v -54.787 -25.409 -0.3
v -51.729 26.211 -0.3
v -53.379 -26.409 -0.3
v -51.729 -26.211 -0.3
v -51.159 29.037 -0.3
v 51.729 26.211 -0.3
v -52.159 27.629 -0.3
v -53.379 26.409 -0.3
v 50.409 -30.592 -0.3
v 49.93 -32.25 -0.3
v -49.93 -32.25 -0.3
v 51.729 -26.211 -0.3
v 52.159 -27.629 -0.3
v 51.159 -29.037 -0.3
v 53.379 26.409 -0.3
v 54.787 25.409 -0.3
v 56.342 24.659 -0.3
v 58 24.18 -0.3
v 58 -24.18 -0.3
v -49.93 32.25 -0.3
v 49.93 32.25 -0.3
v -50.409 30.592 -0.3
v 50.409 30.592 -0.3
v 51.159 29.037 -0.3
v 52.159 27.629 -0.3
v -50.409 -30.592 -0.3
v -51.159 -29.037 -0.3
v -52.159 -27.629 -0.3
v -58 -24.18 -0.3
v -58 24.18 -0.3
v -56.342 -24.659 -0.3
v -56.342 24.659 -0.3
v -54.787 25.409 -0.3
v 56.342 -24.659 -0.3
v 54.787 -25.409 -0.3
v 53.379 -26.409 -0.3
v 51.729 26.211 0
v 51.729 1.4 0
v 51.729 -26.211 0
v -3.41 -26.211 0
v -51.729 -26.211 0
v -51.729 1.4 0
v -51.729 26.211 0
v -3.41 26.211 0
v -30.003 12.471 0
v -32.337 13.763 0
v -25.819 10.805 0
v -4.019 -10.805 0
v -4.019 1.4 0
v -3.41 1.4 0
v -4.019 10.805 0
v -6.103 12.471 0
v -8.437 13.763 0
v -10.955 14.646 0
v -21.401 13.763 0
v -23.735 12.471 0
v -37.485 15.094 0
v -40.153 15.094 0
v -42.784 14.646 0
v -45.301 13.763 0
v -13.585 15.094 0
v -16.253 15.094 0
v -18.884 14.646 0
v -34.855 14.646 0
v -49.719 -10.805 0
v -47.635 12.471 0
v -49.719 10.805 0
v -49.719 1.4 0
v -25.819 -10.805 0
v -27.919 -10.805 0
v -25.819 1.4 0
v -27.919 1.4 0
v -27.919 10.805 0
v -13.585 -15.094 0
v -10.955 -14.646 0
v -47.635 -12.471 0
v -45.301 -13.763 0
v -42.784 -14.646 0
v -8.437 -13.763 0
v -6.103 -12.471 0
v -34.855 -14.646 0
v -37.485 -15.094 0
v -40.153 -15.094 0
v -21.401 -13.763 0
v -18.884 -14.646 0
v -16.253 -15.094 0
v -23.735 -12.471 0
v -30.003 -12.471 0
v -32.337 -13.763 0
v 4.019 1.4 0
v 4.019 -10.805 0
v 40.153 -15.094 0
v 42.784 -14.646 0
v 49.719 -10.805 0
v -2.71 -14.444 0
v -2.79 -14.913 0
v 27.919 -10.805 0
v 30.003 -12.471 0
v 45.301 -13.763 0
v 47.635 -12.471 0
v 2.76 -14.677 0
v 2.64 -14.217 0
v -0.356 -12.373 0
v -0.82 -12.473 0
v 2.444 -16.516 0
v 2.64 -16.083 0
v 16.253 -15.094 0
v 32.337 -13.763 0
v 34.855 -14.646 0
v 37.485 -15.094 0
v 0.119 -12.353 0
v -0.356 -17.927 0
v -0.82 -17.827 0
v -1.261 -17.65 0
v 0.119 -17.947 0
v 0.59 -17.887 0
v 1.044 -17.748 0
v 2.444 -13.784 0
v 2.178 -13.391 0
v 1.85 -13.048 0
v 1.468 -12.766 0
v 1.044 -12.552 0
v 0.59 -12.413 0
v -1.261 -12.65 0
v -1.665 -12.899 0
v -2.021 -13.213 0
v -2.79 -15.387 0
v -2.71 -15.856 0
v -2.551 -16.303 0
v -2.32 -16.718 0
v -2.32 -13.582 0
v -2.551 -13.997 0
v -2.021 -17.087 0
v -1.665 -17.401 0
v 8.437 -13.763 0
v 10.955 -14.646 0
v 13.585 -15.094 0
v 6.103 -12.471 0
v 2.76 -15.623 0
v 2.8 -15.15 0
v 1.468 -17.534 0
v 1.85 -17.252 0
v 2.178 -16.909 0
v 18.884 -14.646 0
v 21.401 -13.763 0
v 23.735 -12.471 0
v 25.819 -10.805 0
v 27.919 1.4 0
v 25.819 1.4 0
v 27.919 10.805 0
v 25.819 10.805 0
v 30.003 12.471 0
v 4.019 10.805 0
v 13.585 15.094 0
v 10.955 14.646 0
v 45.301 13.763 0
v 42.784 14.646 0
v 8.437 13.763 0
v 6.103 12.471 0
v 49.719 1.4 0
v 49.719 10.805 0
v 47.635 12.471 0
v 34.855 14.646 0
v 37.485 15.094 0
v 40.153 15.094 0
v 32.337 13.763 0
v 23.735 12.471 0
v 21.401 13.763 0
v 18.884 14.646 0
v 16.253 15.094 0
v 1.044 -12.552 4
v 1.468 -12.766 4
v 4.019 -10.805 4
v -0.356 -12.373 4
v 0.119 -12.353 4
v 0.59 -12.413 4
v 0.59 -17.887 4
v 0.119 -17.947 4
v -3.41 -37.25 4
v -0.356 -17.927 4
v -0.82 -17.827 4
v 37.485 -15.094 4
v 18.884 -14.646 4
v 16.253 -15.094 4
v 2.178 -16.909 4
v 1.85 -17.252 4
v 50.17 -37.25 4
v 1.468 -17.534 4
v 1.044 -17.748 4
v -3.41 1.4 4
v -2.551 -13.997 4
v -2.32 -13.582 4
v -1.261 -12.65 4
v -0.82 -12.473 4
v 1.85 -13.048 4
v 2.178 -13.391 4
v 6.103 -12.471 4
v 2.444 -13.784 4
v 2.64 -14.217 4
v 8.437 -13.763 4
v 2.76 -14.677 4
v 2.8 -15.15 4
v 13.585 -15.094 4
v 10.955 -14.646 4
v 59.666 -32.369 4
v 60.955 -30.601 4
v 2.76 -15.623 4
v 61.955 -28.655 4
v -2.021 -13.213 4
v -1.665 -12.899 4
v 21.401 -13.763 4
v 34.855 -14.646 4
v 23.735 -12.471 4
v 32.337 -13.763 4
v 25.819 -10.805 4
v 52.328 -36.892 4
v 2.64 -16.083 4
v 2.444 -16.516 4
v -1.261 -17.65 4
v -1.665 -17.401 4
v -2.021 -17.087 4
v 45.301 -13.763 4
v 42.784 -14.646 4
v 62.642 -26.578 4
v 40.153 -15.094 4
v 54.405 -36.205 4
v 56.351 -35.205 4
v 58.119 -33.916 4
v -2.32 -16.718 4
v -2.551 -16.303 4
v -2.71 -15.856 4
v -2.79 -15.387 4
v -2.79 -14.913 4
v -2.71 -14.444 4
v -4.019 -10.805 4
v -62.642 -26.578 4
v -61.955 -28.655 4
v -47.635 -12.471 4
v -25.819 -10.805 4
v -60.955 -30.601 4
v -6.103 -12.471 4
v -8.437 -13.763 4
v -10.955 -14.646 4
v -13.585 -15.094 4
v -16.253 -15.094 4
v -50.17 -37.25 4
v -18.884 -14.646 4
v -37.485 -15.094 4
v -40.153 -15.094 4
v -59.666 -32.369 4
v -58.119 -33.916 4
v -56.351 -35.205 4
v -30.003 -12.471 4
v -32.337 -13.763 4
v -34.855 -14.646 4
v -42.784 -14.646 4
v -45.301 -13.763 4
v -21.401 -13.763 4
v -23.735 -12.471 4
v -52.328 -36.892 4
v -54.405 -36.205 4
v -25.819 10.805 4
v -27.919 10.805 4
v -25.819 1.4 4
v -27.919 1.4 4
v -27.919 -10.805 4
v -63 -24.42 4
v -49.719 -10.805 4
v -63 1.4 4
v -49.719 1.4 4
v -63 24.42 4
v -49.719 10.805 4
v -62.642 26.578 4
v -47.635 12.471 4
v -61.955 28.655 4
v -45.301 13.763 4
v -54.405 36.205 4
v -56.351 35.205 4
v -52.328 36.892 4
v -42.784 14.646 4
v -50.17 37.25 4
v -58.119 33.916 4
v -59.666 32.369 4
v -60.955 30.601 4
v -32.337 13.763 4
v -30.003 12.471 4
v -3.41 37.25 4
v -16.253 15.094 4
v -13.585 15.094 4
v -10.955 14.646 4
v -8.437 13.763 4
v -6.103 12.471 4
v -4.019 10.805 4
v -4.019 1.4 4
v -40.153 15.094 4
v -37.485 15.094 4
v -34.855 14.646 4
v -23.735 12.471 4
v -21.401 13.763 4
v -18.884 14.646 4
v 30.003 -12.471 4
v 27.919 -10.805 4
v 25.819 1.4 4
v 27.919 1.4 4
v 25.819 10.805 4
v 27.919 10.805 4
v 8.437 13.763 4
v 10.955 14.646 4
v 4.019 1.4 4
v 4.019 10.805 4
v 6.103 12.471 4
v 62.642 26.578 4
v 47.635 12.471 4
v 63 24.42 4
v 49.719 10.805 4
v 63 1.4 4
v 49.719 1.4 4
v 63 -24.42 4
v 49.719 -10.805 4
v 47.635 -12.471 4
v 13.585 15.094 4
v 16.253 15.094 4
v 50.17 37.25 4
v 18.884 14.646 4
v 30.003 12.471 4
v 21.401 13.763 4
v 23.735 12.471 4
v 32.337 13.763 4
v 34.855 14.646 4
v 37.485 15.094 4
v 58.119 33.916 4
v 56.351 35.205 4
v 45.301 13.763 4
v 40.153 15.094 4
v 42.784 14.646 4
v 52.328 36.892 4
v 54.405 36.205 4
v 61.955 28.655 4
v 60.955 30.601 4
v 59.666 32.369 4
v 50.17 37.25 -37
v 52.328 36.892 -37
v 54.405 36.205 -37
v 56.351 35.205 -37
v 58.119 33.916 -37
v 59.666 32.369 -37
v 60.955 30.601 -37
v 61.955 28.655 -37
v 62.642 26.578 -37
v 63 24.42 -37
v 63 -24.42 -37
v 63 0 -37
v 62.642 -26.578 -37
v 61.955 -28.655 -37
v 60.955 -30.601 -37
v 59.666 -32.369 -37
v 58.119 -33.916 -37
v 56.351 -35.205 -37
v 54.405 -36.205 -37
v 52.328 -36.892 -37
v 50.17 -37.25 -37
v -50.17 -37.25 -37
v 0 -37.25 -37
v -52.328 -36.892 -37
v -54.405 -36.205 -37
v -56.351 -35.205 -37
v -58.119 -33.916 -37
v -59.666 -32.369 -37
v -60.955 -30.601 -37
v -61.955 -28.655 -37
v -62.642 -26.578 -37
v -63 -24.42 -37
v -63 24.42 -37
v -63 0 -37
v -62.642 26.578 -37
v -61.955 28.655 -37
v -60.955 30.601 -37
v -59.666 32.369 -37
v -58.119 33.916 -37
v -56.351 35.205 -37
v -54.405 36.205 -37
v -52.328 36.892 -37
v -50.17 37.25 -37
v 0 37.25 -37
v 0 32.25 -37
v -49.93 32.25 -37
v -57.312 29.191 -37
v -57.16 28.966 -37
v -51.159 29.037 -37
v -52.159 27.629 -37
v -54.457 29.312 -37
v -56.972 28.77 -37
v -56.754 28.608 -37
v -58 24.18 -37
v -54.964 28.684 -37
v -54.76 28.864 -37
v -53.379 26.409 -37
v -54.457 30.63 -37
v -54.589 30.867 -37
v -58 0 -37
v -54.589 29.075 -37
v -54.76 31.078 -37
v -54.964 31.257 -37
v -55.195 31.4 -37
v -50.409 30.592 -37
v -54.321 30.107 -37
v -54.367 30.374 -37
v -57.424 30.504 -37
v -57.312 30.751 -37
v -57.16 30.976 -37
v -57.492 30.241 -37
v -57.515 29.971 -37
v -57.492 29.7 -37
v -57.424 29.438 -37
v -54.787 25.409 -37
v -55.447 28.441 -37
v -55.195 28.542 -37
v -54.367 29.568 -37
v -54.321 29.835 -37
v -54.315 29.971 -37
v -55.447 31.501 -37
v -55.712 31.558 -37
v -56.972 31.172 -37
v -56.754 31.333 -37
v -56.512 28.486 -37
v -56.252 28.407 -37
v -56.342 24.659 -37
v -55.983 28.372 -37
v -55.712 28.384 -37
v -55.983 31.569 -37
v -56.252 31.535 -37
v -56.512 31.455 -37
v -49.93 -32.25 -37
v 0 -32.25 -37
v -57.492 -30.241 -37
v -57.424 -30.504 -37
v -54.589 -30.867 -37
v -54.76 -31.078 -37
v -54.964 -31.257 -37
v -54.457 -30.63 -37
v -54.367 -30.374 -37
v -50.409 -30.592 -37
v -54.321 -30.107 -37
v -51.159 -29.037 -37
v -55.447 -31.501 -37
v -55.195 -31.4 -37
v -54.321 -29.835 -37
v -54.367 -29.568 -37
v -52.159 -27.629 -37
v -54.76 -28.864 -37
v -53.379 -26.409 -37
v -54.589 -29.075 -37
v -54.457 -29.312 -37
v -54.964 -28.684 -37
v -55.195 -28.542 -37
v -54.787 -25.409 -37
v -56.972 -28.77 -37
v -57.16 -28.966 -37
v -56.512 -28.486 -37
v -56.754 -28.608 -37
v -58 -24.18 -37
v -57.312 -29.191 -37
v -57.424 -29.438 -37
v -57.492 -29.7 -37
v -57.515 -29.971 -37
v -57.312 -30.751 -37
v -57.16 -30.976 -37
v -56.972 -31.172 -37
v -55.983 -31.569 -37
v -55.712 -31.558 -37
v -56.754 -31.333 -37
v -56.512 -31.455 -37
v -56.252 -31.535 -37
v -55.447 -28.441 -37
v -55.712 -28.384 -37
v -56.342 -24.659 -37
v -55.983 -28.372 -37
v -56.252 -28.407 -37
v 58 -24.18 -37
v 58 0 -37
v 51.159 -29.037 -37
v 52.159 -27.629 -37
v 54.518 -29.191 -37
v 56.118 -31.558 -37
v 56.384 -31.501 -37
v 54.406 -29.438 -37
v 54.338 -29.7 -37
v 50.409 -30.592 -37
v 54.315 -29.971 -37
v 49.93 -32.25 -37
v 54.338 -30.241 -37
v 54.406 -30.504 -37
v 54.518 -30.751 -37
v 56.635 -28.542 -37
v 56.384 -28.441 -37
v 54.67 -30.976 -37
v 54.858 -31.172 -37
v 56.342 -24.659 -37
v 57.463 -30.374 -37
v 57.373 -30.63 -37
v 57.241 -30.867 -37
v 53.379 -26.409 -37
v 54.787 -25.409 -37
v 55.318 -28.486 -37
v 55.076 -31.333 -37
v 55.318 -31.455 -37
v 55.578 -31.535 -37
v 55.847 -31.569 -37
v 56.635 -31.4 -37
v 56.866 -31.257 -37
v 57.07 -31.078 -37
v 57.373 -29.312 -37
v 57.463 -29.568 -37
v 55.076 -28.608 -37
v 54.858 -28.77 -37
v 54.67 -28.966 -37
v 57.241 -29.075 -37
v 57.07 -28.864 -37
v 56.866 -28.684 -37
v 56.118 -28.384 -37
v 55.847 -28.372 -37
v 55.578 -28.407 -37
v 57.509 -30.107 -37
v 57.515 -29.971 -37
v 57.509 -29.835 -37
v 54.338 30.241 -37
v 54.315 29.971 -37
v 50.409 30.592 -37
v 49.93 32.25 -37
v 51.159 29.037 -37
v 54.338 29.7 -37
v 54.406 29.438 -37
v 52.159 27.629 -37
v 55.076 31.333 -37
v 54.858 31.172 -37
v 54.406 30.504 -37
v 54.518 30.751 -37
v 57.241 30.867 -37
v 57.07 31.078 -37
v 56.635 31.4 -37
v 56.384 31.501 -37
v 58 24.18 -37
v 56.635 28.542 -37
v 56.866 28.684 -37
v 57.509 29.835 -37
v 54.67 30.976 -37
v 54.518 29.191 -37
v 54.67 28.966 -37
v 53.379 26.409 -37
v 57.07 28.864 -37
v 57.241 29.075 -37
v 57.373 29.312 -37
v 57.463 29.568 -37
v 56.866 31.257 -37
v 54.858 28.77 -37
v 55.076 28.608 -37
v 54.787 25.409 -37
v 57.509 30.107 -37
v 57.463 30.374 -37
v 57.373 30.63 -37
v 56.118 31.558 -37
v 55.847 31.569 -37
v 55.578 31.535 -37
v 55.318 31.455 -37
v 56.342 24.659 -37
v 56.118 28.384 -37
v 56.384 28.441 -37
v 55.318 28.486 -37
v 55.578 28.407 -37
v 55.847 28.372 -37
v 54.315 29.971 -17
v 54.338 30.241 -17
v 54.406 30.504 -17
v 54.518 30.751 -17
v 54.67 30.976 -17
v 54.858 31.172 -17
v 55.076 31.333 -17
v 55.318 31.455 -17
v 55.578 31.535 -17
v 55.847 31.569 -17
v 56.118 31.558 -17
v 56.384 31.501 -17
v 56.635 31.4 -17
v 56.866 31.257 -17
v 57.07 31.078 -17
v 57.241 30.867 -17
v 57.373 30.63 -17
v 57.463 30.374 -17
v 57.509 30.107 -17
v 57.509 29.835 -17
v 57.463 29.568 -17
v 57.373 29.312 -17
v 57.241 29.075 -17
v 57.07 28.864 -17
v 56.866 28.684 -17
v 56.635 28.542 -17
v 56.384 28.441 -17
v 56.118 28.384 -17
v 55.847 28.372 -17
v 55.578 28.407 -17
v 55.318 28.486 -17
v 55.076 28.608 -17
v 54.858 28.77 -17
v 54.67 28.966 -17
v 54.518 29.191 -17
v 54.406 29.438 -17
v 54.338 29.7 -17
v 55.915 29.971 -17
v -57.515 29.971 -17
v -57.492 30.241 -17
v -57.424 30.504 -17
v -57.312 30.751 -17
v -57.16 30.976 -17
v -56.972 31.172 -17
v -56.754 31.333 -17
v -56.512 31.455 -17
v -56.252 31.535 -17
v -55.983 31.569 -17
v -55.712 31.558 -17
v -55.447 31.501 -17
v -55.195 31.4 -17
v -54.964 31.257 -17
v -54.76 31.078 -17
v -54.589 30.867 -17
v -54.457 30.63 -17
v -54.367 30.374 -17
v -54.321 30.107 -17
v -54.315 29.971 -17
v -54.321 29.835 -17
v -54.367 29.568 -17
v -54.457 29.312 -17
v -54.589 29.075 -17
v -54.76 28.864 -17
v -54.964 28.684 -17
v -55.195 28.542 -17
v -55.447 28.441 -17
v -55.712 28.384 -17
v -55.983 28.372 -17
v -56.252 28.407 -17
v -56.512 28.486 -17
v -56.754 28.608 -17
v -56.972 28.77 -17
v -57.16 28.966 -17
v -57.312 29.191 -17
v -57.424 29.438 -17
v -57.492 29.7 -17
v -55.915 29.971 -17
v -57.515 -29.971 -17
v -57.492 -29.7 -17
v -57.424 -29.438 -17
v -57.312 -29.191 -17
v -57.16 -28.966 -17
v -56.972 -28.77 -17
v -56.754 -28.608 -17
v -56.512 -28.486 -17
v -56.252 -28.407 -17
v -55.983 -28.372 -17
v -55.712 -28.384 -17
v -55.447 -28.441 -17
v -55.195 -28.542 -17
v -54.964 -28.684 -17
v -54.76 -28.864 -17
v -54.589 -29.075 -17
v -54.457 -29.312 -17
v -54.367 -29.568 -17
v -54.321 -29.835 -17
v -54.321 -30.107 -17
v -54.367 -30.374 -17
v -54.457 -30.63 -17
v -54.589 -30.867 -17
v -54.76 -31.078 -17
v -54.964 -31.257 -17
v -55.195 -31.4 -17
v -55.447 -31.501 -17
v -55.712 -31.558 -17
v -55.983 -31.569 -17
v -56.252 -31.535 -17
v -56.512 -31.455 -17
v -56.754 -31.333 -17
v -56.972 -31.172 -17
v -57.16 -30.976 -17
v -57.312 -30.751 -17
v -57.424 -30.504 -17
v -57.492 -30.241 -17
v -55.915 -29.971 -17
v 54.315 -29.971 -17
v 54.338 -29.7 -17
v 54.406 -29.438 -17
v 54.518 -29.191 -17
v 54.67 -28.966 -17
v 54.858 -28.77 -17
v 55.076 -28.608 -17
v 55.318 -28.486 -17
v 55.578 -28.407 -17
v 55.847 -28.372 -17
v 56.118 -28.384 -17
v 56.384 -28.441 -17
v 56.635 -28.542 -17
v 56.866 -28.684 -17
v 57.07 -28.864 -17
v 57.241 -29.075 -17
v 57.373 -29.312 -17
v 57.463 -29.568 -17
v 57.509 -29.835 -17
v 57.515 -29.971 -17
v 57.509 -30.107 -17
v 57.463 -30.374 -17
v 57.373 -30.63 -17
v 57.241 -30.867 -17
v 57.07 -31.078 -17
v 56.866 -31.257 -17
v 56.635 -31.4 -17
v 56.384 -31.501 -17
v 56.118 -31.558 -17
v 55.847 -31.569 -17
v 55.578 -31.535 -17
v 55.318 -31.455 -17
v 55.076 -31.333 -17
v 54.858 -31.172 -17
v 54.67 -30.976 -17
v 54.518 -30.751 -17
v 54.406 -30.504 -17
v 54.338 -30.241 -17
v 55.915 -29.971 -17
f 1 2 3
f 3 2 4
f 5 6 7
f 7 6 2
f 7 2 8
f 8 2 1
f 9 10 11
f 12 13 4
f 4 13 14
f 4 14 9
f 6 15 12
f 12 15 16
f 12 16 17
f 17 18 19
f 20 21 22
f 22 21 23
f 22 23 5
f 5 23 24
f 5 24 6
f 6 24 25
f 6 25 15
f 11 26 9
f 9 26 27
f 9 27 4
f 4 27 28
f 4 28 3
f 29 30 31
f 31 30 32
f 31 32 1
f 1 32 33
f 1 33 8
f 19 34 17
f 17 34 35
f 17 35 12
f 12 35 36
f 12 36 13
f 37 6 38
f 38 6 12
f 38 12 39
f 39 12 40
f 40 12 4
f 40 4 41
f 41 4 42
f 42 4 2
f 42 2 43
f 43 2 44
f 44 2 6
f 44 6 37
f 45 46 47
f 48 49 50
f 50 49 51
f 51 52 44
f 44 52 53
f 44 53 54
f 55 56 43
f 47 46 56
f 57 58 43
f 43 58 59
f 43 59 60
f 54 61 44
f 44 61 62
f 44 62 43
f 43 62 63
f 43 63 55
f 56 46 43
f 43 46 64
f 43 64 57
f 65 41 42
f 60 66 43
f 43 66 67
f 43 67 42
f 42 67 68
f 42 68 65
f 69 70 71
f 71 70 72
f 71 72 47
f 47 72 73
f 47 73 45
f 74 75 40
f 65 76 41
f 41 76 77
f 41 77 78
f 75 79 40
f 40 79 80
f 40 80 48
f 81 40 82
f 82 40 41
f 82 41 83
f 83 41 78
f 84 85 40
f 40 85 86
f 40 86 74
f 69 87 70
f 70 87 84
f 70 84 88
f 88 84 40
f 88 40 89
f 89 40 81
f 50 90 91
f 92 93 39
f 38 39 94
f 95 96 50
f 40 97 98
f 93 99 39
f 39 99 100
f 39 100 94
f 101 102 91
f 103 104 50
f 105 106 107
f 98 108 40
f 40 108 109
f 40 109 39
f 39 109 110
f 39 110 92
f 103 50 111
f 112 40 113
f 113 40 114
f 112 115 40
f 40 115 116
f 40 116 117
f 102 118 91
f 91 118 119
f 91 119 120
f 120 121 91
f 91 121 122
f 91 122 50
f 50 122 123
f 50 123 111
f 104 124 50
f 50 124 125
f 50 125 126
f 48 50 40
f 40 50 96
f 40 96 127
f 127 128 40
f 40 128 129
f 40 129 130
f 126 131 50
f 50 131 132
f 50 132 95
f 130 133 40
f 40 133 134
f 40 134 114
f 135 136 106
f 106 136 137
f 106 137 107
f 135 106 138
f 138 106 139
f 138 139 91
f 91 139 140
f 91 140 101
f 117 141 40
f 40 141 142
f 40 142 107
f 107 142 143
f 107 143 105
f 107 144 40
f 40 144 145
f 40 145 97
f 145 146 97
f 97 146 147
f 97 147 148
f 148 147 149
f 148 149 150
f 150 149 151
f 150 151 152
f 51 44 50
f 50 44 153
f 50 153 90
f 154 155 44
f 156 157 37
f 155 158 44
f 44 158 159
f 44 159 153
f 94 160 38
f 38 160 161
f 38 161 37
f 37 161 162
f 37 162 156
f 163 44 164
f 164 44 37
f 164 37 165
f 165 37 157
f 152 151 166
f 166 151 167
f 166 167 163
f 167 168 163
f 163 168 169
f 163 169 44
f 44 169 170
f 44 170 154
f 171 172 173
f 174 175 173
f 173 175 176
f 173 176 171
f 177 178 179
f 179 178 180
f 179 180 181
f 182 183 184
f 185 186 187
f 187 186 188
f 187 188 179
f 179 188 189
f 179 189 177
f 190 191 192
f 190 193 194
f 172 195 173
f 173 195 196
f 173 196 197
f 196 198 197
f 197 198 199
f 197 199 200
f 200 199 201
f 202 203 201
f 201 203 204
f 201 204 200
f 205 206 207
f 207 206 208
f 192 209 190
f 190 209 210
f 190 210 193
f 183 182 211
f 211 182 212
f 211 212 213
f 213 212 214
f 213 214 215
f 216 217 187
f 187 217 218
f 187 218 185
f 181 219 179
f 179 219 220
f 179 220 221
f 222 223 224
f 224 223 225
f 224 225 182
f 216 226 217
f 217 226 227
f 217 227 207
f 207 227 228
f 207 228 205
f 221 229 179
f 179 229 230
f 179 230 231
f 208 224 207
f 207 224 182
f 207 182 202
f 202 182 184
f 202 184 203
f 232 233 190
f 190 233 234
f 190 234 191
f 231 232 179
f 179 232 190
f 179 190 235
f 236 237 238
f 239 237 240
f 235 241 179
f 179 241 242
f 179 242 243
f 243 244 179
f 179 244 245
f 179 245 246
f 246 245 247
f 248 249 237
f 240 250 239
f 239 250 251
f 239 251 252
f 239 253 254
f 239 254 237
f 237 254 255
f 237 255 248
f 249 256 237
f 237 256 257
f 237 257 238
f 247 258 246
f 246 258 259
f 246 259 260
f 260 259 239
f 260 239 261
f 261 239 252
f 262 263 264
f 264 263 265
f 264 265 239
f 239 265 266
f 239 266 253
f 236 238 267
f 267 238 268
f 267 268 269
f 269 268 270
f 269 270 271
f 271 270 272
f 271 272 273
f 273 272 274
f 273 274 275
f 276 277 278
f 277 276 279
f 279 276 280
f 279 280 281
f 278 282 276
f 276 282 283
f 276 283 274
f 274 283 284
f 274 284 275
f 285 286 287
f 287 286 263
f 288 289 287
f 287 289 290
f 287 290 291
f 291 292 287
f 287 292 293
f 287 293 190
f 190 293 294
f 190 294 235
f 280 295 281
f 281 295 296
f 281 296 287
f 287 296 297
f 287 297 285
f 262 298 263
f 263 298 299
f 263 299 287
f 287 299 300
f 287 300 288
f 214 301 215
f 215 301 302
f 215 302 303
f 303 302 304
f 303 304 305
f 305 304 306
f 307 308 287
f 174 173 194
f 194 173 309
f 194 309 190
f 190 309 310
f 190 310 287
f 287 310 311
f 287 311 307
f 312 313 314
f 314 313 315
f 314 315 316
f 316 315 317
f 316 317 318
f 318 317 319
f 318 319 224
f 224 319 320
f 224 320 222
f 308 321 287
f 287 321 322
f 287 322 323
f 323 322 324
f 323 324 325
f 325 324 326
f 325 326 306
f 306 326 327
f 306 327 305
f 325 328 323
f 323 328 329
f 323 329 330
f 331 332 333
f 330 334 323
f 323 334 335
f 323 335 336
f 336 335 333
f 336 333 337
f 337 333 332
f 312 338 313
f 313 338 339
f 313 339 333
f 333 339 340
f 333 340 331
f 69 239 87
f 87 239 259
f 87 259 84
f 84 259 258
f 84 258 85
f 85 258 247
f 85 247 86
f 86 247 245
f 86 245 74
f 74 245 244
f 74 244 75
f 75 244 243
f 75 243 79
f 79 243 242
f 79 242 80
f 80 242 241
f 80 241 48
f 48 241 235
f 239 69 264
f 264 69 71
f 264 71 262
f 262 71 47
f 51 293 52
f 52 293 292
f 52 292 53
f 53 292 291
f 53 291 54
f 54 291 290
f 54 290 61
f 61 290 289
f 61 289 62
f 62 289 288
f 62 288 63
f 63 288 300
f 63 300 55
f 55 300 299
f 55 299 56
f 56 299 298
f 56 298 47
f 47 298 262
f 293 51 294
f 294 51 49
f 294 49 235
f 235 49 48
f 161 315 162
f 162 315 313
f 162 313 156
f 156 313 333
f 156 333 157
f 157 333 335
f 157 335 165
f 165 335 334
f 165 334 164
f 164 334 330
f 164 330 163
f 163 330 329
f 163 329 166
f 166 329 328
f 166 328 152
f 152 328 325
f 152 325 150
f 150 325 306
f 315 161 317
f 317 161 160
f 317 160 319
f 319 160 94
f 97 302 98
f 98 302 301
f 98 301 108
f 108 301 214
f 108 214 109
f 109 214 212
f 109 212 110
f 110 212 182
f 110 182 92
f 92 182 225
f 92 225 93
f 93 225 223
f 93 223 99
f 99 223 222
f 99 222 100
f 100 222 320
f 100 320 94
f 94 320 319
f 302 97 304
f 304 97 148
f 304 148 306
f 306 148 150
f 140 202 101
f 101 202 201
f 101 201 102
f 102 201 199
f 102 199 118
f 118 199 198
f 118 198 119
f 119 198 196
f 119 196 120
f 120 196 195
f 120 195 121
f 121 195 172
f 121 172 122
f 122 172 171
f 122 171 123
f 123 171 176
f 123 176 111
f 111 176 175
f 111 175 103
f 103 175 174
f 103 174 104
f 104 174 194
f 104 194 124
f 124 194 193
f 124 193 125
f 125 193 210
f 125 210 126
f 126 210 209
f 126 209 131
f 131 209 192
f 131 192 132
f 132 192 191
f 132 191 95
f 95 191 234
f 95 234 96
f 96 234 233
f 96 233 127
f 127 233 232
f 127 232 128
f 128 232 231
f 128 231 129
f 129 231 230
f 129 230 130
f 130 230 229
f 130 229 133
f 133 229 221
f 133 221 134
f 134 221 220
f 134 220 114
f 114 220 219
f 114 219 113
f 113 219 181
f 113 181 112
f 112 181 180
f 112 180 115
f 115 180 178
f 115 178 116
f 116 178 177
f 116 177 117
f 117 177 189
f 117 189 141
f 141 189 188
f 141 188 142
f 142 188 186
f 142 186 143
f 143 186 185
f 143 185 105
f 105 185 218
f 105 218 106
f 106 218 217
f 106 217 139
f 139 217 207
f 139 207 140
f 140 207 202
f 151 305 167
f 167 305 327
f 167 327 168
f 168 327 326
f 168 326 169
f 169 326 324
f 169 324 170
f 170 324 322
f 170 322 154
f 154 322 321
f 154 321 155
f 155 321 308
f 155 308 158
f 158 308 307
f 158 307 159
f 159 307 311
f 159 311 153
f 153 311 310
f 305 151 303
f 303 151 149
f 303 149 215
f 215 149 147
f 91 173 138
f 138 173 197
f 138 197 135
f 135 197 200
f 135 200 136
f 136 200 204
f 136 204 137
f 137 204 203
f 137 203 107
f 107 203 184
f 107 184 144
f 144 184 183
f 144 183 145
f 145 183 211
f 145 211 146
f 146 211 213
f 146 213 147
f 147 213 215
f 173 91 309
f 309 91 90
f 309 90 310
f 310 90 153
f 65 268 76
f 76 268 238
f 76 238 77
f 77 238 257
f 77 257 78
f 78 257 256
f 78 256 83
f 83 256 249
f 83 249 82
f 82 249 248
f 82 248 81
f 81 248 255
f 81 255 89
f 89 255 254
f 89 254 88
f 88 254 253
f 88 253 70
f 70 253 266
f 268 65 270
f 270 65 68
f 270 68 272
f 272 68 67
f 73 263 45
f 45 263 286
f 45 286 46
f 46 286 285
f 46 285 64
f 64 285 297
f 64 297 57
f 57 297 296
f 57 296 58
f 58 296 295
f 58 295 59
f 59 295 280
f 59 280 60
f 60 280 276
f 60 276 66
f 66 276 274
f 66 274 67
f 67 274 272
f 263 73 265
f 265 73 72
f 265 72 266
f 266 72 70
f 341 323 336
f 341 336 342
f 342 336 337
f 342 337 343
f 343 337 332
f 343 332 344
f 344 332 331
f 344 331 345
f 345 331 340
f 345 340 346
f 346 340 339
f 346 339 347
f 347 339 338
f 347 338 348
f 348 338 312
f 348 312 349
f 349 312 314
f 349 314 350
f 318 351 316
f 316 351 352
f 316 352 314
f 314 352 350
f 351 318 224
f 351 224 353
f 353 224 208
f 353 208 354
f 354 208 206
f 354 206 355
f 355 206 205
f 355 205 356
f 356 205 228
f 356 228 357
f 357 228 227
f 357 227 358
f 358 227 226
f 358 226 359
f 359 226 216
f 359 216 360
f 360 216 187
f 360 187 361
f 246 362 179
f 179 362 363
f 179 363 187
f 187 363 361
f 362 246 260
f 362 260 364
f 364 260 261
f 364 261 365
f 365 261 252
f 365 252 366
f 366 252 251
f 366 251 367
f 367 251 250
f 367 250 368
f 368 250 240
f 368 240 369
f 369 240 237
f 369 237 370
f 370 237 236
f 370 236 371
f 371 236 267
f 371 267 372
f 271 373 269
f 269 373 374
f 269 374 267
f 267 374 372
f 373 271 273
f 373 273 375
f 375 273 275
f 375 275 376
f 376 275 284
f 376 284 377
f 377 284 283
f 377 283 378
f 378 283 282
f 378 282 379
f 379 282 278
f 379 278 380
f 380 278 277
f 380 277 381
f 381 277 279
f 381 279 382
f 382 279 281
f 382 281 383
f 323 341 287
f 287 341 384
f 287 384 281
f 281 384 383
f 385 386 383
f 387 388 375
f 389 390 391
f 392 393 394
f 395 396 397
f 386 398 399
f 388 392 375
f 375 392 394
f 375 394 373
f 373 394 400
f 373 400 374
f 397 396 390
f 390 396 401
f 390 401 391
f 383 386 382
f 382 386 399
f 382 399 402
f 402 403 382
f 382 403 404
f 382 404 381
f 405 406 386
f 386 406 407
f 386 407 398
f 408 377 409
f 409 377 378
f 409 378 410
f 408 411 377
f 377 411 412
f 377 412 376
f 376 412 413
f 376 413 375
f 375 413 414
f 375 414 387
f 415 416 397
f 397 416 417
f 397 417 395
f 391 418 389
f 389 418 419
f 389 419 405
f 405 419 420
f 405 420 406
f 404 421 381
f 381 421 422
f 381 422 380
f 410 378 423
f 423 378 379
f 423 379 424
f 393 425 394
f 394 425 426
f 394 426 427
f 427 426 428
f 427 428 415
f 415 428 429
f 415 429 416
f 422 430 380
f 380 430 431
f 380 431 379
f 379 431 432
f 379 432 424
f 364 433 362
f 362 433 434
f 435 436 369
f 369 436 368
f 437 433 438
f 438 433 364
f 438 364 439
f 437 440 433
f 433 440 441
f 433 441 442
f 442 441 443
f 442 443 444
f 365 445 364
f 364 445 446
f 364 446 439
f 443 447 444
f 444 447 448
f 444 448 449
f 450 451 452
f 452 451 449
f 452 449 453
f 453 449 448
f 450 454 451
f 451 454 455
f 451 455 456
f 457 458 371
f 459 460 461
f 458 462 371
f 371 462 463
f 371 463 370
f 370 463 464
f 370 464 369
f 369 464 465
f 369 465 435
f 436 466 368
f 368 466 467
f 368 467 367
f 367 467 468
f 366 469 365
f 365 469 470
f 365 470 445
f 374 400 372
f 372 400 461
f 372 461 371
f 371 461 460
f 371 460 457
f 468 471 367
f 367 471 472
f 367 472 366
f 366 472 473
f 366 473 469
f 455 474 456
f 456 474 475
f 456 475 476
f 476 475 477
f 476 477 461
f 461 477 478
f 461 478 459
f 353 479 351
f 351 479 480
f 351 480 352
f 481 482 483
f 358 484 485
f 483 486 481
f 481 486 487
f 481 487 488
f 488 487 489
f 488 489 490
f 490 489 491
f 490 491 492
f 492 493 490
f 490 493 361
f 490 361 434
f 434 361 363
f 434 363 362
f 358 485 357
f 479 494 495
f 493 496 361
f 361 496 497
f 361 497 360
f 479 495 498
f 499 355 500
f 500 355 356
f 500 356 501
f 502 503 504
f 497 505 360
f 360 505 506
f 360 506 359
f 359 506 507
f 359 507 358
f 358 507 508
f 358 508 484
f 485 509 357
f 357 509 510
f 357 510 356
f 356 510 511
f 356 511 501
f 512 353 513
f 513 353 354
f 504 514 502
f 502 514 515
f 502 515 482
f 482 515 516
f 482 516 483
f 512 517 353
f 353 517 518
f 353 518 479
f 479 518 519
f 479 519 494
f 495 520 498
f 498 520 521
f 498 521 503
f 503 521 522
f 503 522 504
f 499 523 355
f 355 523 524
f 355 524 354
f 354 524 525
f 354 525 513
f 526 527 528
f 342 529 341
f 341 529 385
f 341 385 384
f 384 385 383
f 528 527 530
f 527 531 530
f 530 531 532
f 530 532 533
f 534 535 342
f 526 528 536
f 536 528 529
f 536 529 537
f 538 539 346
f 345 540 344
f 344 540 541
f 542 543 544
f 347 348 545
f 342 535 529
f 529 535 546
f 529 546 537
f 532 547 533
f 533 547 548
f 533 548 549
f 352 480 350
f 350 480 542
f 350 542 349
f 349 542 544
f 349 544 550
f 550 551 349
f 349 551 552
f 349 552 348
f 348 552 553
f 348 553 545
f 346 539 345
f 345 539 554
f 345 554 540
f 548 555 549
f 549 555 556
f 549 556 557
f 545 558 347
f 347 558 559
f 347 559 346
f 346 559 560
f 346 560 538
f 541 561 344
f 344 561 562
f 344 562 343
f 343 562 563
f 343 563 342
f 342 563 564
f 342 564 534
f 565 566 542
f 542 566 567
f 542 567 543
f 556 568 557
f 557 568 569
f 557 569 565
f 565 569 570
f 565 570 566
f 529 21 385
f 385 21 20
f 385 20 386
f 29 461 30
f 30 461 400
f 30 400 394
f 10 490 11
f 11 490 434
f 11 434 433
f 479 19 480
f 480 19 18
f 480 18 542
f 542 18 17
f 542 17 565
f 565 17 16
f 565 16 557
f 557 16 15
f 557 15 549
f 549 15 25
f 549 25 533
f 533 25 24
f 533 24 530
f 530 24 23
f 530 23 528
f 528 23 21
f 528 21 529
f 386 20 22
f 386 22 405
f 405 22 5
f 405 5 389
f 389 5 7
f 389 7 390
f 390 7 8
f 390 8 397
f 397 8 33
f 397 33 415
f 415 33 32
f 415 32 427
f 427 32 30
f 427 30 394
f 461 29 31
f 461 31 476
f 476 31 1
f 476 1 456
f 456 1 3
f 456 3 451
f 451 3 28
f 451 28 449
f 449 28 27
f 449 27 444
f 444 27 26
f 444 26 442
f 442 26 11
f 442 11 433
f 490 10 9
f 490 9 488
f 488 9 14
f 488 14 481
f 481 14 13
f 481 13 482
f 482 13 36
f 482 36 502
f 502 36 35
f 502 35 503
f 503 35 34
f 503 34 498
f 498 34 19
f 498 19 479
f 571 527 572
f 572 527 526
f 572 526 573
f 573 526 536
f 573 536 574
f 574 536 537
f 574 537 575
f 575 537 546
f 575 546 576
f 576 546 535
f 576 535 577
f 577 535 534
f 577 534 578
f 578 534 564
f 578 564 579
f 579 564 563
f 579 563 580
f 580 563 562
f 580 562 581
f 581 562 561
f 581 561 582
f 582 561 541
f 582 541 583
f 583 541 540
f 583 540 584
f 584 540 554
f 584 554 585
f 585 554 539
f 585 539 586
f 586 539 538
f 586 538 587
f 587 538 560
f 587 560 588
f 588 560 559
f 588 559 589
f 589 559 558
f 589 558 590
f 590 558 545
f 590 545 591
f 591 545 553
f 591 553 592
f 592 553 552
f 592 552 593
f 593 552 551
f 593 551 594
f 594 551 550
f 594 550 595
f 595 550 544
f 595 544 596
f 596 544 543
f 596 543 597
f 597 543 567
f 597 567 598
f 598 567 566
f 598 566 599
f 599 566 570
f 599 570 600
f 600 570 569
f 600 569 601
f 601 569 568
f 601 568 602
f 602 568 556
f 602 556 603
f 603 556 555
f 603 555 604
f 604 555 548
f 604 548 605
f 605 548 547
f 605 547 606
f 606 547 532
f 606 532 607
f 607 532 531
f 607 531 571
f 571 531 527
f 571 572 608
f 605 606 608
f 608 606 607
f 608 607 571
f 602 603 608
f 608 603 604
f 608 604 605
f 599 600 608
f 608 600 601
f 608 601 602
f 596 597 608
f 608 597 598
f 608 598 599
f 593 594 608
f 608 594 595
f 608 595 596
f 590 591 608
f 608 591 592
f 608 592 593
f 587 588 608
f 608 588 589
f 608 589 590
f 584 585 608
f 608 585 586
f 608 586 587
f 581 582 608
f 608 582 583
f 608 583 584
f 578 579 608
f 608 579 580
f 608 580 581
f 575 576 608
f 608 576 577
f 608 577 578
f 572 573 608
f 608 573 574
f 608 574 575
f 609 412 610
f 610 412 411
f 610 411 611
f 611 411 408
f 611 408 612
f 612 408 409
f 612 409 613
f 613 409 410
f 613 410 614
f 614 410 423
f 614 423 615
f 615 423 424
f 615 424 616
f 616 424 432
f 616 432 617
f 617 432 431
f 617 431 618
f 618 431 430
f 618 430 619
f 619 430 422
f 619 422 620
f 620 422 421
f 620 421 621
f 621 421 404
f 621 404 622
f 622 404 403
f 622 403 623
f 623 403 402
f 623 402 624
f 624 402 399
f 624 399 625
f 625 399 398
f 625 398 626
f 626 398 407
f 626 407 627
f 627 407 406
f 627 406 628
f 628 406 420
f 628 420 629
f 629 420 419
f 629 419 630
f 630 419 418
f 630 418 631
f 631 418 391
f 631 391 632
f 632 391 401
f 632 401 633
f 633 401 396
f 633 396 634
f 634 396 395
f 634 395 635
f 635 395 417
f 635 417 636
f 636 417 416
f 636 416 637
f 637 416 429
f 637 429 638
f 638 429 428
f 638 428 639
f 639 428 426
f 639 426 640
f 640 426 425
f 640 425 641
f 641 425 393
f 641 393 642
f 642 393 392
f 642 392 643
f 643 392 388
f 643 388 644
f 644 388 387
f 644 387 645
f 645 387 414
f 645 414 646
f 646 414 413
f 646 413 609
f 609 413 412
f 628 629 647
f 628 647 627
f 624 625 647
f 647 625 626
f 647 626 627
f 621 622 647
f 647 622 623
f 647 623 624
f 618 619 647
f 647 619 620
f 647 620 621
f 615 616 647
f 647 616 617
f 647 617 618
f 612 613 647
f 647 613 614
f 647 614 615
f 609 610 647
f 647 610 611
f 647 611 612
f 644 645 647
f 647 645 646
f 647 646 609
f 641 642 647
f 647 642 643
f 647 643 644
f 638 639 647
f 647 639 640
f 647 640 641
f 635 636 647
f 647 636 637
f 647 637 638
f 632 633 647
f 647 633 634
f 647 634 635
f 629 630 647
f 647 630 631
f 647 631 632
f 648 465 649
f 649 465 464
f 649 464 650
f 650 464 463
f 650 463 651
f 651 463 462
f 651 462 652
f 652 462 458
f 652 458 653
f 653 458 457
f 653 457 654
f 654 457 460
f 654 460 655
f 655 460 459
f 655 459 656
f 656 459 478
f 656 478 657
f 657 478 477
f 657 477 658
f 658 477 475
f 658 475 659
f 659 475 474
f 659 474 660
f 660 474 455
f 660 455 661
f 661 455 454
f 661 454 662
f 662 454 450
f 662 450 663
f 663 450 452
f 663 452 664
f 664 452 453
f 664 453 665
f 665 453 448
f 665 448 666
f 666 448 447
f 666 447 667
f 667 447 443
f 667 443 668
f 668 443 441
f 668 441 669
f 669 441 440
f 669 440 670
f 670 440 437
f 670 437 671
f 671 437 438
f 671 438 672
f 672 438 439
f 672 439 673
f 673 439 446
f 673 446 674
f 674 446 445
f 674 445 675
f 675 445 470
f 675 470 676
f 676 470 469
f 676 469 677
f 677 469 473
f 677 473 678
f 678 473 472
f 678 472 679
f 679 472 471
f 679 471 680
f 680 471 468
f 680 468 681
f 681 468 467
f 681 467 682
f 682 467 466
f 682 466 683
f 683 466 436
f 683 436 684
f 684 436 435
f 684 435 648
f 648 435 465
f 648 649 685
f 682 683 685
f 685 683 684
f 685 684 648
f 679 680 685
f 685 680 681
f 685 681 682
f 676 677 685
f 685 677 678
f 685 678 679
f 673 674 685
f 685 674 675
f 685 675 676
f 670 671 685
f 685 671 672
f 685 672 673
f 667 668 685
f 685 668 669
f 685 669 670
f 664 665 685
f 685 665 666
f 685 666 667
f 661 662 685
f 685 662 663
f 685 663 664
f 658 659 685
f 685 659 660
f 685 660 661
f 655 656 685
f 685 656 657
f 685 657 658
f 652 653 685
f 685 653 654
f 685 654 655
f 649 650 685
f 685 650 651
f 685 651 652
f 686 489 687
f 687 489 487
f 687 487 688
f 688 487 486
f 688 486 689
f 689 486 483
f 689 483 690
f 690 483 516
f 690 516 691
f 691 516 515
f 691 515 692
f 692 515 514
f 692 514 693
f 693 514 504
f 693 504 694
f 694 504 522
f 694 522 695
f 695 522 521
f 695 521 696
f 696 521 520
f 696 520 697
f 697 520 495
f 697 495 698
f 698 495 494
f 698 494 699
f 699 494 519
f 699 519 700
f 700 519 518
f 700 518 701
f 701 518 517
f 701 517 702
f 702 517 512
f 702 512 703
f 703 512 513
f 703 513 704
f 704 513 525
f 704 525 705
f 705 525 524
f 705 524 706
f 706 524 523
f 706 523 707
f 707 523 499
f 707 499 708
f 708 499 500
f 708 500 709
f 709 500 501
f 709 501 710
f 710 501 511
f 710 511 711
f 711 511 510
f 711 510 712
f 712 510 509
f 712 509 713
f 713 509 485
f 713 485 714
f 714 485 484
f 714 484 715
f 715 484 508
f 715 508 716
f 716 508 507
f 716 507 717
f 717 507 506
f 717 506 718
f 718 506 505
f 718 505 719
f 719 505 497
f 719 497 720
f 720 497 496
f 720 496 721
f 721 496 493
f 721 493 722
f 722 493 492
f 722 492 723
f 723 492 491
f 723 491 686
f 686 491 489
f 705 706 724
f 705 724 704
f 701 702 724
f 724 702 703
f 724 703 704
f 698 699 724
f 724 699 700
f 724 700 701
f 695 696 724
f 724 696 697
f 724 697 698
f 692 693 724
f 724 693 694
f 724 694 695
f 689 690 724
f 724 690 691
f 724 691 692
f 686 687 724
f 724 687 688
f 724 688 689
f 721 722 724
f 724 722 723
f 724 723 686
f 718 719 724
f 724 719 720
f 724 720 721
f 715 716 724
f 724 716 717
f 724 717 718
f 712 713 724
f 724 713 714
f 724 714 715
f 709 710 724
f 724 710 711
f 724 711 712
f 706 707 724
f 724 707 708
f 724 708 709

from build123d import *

# Parameters (mm, degrees)
SKETCH_1_W          = 106
SKETCH_1_H          = 54.5
EXTRUDE_1_DEPTH     = 4
SKETCH_2_R          = 2.8
CUT_EXTRUDE_1_DEPTH = 4
SKETCH_3_W          = 103.45800924
SKETCH_3_H          = 52.422924748
EXTRUDE_2_DEPTH     = 41
CUT_EXTRUDE_2_DEPTH = 36.7
EXTRUDE_START       = 36.7
EXTRUDE_3_DEPTH     = 36.7
SKETCH_7_R          = 1.6
CUT_EXTRUDE_3_DEPTH = 20


with BuildPart() as part:
    # Эскиз1 → Бобышка-Вытянуть1 (new body)
    with BuildSketch(Plane.XY):
        Rectangle(SKETCH_1_W, SKETCH_1_H)
    extrude(amount=EXTRUDE_1_DEPTH)

    # Эскиз2 → Вырез-Вытянуть1 (cut)
    with BuildSketch(Plane.XY.offset(4)):
        with Locations((0, -15.15)):
            Circle(SKETCH_2_R)
        with BuildLine():
            Line((-49.719324036, 10.805), (-49.719324036, -10.805))
            ThreePointArc((-49.719324036, -10.805), (-38.819324036, -15.15), (-27.919324036, -10.805))
            Line((-27.919324036, -10.805), (-27.919324036, 10.805))
            ThreePointArc((-27.919324036, 10.805), (-38.819324036, 15.15), (-49.719324036, 10.805))
        make_face()
        with BuildLine():
            Line((-25.819324036, 10.805), (-25.819324036, -10.805))
            ThreePointArc((-25.819324036, -10.805), (-14.919324036, -15.15), (-4.019324036, -10.805))
            Line((-4.019324036, -10.805), (-4.019324036, 10.805))
            ThreePointArc((-4.019324036, 10.805), (-14.919324036, 15.15), (-25.819324036, 10.805))
        make_face()
        with BuildLine():
            Line((4.019324036, 10.805), (4.019324036, -10.805))
            ThreePointArc((4.019324036, -10.805), (14.919324036, -15.15), (25.819324036, -10.805))
            Line((25.819324036, -10.805), (25.819324036, 10.805))
            ThreePointArc((25.819324036, 10.805), (14.919324036, 15.15), (4.019324036, 10.805))
        make_face()
        with BuildLine():
            Line((27.919324036, 10.805), (27.919324036, -10.805))
            ThreePointArc((27.919324036, -10.805), (38.819324036, -15.15), (49.719324036, -10.805))
            Line((49.719324036, -10.805), (49.719324036, 10.805))
            ThreePointArc((49.719324036, 10.805), (38.819324036, 15.15), (27.919324036, 10.805))
        make_face()
    extrude(amount=-CUT_EXTRUDE_1_DEPTH, mode=Mode.SUBTRACT)

    # Эскиз3 → Бобышка-Вытянуть2 (add)
    with BuildSketch(Plane.XY.offset(4)):
        with BuildLine():
            Line((63, -24.419804811), (63, 24.419804811))
            ThreePointArc((63, 24.419804811), (58.922335459, 33.172335459), (50.169804811, 37.25))
            Line((50.169804811, 37.25), (-50.169804811, 37.25))
            ThreePointArc((-50.169804811, 37.25), (-58.922335459, 33.172335459), (-63, 24.419804811))
            Line((-63, 24.419804811), (-63, -24.419804811))
            ThreePointArc((-63, -24.419804811), (-58.922335459, -33.172335459), (-50.169804811, -37.25))
            Line((-50.169804811, -37.25), (50.169804811, -37.25))
            ThreePointArc((50.169804811, -37.25), (58.922335459, -33.172335459), (63, -24.419804811))
        make_face()
        Rectangle(SKETCH_3_W, SKETCH_3_H, mode=Mode.SUBTRACT)
    extrude(amount=-EXTRUDE_2_DEPTH)

    # Эскиз5 → Вырез-Вытянуть2 (cut)
    with BuildSketch(Plane(origin=(0, 0, -37), x_dir=(-1, 0, 0), z_dir=(0, 0, -1))):
        with BuildLine():
            Line((-58, 24.179579232), (-58, -24.179579232))
            ThreePointArc((-58, -24.179579232), (-55.386801553, -29.636801553), (-49.929579232, -32.25))
            Line((-49.929579232, -32.25), (49.929579232, -32.25))
            ThreePointArc((49.929579232, -32.25), (55.386801553, -29.636801553), (58, -24.179579232))
            Line((58, -24.179579232), (58, 24.179579232))
            ThreePointArc((58, 24.179579232), (55.386801553, 29.636801553), (49.929579232, 32.25))
            Line((49.929579232, 32.25), (-49.929579232, 32.25))
            ThreePointArc((-49.929579232, 32.25), (-55.386801553, 29.636801553), (-58, 24.179579232))
        make_face()
    extrude(amount=-CUT_EXTRUDE_2_DEPTH, mode=Mode.SUBTRACT)

    # Эскиз6 → Бобышка-Вытянуть3 (add)
    with BuildSketch(Plane(origin=(0, 0, -0.3), x_dir=(-1, 0, 0), z_dir=(0, 0, -1)).offset(EXTRUDE_START)):
        with BuildLine():
            ThreePointArc((-49.929579232, 32.25), (-52.743515709, 26.993515709), (-58, 24.179579232))
            ThreePointArc((-58, 24.179579232), (-55.386801553, 29.636801553), (-49.929579232, 32.25))
        make_face()
        with BuildLine():
            ThreePointArc((49.929579232, 32.25), (55.386801553, 29.636801553), (58, 24.179579232))
            ThreePointArc((58, 24.179579232), (52.743515709, 26.993515709), (49.929579232, 32.25))
        make_face()
        with BuildLine():
            ThreePointArc((49.929579232, -32.25), (52.743515709, -26.993515709), (58, -24.179579232))
            ThreePointArc((58, -24.179579232), (55.386801553, -29.636801553), (49.929579232, -32.25))
        make_face()
        with BuildLine():
            ThreePointArc((-49.929579232, -32.25), (-55.386801553, -29.636801553), (-58, -24.179579232))
            ThreePointArc((-58, -24.179579232), (-52.743515709, -26.993515709), (-49.929579232, -32.25))
        make_face()
    extrude(amount=-EXTRUDE_3_DEPTH)

    # Эскиз7 → Вырез-Вытянуть3 (cut)
    with BuildSketch(Plane(origin=(0, 0, -37), x_dir=(-1, 0, 0), z_dir=(0, 0, -1))):
        with Locations((-55.91502671, 29.970875188)):
            Circle(SKETCH_7_R)
        with Locations(Location((55.91502671, 29.970875188, 0), (0, 0, 180))):
            Circle(SKETCH_7_R)
        with Locations((55.91502671, -29.970875188)):
            Circle(SKETCH_7_R)
        with Locations(Location((-55.91502671, -29.970875188, 0), (0, 0, 180))):
            Circle(SKETCH_7_R)
    extrude(amount=-CUT_EXTRUDE_3_DEPTH, mode=Mode.SUBTRACT)


solid = part.part
